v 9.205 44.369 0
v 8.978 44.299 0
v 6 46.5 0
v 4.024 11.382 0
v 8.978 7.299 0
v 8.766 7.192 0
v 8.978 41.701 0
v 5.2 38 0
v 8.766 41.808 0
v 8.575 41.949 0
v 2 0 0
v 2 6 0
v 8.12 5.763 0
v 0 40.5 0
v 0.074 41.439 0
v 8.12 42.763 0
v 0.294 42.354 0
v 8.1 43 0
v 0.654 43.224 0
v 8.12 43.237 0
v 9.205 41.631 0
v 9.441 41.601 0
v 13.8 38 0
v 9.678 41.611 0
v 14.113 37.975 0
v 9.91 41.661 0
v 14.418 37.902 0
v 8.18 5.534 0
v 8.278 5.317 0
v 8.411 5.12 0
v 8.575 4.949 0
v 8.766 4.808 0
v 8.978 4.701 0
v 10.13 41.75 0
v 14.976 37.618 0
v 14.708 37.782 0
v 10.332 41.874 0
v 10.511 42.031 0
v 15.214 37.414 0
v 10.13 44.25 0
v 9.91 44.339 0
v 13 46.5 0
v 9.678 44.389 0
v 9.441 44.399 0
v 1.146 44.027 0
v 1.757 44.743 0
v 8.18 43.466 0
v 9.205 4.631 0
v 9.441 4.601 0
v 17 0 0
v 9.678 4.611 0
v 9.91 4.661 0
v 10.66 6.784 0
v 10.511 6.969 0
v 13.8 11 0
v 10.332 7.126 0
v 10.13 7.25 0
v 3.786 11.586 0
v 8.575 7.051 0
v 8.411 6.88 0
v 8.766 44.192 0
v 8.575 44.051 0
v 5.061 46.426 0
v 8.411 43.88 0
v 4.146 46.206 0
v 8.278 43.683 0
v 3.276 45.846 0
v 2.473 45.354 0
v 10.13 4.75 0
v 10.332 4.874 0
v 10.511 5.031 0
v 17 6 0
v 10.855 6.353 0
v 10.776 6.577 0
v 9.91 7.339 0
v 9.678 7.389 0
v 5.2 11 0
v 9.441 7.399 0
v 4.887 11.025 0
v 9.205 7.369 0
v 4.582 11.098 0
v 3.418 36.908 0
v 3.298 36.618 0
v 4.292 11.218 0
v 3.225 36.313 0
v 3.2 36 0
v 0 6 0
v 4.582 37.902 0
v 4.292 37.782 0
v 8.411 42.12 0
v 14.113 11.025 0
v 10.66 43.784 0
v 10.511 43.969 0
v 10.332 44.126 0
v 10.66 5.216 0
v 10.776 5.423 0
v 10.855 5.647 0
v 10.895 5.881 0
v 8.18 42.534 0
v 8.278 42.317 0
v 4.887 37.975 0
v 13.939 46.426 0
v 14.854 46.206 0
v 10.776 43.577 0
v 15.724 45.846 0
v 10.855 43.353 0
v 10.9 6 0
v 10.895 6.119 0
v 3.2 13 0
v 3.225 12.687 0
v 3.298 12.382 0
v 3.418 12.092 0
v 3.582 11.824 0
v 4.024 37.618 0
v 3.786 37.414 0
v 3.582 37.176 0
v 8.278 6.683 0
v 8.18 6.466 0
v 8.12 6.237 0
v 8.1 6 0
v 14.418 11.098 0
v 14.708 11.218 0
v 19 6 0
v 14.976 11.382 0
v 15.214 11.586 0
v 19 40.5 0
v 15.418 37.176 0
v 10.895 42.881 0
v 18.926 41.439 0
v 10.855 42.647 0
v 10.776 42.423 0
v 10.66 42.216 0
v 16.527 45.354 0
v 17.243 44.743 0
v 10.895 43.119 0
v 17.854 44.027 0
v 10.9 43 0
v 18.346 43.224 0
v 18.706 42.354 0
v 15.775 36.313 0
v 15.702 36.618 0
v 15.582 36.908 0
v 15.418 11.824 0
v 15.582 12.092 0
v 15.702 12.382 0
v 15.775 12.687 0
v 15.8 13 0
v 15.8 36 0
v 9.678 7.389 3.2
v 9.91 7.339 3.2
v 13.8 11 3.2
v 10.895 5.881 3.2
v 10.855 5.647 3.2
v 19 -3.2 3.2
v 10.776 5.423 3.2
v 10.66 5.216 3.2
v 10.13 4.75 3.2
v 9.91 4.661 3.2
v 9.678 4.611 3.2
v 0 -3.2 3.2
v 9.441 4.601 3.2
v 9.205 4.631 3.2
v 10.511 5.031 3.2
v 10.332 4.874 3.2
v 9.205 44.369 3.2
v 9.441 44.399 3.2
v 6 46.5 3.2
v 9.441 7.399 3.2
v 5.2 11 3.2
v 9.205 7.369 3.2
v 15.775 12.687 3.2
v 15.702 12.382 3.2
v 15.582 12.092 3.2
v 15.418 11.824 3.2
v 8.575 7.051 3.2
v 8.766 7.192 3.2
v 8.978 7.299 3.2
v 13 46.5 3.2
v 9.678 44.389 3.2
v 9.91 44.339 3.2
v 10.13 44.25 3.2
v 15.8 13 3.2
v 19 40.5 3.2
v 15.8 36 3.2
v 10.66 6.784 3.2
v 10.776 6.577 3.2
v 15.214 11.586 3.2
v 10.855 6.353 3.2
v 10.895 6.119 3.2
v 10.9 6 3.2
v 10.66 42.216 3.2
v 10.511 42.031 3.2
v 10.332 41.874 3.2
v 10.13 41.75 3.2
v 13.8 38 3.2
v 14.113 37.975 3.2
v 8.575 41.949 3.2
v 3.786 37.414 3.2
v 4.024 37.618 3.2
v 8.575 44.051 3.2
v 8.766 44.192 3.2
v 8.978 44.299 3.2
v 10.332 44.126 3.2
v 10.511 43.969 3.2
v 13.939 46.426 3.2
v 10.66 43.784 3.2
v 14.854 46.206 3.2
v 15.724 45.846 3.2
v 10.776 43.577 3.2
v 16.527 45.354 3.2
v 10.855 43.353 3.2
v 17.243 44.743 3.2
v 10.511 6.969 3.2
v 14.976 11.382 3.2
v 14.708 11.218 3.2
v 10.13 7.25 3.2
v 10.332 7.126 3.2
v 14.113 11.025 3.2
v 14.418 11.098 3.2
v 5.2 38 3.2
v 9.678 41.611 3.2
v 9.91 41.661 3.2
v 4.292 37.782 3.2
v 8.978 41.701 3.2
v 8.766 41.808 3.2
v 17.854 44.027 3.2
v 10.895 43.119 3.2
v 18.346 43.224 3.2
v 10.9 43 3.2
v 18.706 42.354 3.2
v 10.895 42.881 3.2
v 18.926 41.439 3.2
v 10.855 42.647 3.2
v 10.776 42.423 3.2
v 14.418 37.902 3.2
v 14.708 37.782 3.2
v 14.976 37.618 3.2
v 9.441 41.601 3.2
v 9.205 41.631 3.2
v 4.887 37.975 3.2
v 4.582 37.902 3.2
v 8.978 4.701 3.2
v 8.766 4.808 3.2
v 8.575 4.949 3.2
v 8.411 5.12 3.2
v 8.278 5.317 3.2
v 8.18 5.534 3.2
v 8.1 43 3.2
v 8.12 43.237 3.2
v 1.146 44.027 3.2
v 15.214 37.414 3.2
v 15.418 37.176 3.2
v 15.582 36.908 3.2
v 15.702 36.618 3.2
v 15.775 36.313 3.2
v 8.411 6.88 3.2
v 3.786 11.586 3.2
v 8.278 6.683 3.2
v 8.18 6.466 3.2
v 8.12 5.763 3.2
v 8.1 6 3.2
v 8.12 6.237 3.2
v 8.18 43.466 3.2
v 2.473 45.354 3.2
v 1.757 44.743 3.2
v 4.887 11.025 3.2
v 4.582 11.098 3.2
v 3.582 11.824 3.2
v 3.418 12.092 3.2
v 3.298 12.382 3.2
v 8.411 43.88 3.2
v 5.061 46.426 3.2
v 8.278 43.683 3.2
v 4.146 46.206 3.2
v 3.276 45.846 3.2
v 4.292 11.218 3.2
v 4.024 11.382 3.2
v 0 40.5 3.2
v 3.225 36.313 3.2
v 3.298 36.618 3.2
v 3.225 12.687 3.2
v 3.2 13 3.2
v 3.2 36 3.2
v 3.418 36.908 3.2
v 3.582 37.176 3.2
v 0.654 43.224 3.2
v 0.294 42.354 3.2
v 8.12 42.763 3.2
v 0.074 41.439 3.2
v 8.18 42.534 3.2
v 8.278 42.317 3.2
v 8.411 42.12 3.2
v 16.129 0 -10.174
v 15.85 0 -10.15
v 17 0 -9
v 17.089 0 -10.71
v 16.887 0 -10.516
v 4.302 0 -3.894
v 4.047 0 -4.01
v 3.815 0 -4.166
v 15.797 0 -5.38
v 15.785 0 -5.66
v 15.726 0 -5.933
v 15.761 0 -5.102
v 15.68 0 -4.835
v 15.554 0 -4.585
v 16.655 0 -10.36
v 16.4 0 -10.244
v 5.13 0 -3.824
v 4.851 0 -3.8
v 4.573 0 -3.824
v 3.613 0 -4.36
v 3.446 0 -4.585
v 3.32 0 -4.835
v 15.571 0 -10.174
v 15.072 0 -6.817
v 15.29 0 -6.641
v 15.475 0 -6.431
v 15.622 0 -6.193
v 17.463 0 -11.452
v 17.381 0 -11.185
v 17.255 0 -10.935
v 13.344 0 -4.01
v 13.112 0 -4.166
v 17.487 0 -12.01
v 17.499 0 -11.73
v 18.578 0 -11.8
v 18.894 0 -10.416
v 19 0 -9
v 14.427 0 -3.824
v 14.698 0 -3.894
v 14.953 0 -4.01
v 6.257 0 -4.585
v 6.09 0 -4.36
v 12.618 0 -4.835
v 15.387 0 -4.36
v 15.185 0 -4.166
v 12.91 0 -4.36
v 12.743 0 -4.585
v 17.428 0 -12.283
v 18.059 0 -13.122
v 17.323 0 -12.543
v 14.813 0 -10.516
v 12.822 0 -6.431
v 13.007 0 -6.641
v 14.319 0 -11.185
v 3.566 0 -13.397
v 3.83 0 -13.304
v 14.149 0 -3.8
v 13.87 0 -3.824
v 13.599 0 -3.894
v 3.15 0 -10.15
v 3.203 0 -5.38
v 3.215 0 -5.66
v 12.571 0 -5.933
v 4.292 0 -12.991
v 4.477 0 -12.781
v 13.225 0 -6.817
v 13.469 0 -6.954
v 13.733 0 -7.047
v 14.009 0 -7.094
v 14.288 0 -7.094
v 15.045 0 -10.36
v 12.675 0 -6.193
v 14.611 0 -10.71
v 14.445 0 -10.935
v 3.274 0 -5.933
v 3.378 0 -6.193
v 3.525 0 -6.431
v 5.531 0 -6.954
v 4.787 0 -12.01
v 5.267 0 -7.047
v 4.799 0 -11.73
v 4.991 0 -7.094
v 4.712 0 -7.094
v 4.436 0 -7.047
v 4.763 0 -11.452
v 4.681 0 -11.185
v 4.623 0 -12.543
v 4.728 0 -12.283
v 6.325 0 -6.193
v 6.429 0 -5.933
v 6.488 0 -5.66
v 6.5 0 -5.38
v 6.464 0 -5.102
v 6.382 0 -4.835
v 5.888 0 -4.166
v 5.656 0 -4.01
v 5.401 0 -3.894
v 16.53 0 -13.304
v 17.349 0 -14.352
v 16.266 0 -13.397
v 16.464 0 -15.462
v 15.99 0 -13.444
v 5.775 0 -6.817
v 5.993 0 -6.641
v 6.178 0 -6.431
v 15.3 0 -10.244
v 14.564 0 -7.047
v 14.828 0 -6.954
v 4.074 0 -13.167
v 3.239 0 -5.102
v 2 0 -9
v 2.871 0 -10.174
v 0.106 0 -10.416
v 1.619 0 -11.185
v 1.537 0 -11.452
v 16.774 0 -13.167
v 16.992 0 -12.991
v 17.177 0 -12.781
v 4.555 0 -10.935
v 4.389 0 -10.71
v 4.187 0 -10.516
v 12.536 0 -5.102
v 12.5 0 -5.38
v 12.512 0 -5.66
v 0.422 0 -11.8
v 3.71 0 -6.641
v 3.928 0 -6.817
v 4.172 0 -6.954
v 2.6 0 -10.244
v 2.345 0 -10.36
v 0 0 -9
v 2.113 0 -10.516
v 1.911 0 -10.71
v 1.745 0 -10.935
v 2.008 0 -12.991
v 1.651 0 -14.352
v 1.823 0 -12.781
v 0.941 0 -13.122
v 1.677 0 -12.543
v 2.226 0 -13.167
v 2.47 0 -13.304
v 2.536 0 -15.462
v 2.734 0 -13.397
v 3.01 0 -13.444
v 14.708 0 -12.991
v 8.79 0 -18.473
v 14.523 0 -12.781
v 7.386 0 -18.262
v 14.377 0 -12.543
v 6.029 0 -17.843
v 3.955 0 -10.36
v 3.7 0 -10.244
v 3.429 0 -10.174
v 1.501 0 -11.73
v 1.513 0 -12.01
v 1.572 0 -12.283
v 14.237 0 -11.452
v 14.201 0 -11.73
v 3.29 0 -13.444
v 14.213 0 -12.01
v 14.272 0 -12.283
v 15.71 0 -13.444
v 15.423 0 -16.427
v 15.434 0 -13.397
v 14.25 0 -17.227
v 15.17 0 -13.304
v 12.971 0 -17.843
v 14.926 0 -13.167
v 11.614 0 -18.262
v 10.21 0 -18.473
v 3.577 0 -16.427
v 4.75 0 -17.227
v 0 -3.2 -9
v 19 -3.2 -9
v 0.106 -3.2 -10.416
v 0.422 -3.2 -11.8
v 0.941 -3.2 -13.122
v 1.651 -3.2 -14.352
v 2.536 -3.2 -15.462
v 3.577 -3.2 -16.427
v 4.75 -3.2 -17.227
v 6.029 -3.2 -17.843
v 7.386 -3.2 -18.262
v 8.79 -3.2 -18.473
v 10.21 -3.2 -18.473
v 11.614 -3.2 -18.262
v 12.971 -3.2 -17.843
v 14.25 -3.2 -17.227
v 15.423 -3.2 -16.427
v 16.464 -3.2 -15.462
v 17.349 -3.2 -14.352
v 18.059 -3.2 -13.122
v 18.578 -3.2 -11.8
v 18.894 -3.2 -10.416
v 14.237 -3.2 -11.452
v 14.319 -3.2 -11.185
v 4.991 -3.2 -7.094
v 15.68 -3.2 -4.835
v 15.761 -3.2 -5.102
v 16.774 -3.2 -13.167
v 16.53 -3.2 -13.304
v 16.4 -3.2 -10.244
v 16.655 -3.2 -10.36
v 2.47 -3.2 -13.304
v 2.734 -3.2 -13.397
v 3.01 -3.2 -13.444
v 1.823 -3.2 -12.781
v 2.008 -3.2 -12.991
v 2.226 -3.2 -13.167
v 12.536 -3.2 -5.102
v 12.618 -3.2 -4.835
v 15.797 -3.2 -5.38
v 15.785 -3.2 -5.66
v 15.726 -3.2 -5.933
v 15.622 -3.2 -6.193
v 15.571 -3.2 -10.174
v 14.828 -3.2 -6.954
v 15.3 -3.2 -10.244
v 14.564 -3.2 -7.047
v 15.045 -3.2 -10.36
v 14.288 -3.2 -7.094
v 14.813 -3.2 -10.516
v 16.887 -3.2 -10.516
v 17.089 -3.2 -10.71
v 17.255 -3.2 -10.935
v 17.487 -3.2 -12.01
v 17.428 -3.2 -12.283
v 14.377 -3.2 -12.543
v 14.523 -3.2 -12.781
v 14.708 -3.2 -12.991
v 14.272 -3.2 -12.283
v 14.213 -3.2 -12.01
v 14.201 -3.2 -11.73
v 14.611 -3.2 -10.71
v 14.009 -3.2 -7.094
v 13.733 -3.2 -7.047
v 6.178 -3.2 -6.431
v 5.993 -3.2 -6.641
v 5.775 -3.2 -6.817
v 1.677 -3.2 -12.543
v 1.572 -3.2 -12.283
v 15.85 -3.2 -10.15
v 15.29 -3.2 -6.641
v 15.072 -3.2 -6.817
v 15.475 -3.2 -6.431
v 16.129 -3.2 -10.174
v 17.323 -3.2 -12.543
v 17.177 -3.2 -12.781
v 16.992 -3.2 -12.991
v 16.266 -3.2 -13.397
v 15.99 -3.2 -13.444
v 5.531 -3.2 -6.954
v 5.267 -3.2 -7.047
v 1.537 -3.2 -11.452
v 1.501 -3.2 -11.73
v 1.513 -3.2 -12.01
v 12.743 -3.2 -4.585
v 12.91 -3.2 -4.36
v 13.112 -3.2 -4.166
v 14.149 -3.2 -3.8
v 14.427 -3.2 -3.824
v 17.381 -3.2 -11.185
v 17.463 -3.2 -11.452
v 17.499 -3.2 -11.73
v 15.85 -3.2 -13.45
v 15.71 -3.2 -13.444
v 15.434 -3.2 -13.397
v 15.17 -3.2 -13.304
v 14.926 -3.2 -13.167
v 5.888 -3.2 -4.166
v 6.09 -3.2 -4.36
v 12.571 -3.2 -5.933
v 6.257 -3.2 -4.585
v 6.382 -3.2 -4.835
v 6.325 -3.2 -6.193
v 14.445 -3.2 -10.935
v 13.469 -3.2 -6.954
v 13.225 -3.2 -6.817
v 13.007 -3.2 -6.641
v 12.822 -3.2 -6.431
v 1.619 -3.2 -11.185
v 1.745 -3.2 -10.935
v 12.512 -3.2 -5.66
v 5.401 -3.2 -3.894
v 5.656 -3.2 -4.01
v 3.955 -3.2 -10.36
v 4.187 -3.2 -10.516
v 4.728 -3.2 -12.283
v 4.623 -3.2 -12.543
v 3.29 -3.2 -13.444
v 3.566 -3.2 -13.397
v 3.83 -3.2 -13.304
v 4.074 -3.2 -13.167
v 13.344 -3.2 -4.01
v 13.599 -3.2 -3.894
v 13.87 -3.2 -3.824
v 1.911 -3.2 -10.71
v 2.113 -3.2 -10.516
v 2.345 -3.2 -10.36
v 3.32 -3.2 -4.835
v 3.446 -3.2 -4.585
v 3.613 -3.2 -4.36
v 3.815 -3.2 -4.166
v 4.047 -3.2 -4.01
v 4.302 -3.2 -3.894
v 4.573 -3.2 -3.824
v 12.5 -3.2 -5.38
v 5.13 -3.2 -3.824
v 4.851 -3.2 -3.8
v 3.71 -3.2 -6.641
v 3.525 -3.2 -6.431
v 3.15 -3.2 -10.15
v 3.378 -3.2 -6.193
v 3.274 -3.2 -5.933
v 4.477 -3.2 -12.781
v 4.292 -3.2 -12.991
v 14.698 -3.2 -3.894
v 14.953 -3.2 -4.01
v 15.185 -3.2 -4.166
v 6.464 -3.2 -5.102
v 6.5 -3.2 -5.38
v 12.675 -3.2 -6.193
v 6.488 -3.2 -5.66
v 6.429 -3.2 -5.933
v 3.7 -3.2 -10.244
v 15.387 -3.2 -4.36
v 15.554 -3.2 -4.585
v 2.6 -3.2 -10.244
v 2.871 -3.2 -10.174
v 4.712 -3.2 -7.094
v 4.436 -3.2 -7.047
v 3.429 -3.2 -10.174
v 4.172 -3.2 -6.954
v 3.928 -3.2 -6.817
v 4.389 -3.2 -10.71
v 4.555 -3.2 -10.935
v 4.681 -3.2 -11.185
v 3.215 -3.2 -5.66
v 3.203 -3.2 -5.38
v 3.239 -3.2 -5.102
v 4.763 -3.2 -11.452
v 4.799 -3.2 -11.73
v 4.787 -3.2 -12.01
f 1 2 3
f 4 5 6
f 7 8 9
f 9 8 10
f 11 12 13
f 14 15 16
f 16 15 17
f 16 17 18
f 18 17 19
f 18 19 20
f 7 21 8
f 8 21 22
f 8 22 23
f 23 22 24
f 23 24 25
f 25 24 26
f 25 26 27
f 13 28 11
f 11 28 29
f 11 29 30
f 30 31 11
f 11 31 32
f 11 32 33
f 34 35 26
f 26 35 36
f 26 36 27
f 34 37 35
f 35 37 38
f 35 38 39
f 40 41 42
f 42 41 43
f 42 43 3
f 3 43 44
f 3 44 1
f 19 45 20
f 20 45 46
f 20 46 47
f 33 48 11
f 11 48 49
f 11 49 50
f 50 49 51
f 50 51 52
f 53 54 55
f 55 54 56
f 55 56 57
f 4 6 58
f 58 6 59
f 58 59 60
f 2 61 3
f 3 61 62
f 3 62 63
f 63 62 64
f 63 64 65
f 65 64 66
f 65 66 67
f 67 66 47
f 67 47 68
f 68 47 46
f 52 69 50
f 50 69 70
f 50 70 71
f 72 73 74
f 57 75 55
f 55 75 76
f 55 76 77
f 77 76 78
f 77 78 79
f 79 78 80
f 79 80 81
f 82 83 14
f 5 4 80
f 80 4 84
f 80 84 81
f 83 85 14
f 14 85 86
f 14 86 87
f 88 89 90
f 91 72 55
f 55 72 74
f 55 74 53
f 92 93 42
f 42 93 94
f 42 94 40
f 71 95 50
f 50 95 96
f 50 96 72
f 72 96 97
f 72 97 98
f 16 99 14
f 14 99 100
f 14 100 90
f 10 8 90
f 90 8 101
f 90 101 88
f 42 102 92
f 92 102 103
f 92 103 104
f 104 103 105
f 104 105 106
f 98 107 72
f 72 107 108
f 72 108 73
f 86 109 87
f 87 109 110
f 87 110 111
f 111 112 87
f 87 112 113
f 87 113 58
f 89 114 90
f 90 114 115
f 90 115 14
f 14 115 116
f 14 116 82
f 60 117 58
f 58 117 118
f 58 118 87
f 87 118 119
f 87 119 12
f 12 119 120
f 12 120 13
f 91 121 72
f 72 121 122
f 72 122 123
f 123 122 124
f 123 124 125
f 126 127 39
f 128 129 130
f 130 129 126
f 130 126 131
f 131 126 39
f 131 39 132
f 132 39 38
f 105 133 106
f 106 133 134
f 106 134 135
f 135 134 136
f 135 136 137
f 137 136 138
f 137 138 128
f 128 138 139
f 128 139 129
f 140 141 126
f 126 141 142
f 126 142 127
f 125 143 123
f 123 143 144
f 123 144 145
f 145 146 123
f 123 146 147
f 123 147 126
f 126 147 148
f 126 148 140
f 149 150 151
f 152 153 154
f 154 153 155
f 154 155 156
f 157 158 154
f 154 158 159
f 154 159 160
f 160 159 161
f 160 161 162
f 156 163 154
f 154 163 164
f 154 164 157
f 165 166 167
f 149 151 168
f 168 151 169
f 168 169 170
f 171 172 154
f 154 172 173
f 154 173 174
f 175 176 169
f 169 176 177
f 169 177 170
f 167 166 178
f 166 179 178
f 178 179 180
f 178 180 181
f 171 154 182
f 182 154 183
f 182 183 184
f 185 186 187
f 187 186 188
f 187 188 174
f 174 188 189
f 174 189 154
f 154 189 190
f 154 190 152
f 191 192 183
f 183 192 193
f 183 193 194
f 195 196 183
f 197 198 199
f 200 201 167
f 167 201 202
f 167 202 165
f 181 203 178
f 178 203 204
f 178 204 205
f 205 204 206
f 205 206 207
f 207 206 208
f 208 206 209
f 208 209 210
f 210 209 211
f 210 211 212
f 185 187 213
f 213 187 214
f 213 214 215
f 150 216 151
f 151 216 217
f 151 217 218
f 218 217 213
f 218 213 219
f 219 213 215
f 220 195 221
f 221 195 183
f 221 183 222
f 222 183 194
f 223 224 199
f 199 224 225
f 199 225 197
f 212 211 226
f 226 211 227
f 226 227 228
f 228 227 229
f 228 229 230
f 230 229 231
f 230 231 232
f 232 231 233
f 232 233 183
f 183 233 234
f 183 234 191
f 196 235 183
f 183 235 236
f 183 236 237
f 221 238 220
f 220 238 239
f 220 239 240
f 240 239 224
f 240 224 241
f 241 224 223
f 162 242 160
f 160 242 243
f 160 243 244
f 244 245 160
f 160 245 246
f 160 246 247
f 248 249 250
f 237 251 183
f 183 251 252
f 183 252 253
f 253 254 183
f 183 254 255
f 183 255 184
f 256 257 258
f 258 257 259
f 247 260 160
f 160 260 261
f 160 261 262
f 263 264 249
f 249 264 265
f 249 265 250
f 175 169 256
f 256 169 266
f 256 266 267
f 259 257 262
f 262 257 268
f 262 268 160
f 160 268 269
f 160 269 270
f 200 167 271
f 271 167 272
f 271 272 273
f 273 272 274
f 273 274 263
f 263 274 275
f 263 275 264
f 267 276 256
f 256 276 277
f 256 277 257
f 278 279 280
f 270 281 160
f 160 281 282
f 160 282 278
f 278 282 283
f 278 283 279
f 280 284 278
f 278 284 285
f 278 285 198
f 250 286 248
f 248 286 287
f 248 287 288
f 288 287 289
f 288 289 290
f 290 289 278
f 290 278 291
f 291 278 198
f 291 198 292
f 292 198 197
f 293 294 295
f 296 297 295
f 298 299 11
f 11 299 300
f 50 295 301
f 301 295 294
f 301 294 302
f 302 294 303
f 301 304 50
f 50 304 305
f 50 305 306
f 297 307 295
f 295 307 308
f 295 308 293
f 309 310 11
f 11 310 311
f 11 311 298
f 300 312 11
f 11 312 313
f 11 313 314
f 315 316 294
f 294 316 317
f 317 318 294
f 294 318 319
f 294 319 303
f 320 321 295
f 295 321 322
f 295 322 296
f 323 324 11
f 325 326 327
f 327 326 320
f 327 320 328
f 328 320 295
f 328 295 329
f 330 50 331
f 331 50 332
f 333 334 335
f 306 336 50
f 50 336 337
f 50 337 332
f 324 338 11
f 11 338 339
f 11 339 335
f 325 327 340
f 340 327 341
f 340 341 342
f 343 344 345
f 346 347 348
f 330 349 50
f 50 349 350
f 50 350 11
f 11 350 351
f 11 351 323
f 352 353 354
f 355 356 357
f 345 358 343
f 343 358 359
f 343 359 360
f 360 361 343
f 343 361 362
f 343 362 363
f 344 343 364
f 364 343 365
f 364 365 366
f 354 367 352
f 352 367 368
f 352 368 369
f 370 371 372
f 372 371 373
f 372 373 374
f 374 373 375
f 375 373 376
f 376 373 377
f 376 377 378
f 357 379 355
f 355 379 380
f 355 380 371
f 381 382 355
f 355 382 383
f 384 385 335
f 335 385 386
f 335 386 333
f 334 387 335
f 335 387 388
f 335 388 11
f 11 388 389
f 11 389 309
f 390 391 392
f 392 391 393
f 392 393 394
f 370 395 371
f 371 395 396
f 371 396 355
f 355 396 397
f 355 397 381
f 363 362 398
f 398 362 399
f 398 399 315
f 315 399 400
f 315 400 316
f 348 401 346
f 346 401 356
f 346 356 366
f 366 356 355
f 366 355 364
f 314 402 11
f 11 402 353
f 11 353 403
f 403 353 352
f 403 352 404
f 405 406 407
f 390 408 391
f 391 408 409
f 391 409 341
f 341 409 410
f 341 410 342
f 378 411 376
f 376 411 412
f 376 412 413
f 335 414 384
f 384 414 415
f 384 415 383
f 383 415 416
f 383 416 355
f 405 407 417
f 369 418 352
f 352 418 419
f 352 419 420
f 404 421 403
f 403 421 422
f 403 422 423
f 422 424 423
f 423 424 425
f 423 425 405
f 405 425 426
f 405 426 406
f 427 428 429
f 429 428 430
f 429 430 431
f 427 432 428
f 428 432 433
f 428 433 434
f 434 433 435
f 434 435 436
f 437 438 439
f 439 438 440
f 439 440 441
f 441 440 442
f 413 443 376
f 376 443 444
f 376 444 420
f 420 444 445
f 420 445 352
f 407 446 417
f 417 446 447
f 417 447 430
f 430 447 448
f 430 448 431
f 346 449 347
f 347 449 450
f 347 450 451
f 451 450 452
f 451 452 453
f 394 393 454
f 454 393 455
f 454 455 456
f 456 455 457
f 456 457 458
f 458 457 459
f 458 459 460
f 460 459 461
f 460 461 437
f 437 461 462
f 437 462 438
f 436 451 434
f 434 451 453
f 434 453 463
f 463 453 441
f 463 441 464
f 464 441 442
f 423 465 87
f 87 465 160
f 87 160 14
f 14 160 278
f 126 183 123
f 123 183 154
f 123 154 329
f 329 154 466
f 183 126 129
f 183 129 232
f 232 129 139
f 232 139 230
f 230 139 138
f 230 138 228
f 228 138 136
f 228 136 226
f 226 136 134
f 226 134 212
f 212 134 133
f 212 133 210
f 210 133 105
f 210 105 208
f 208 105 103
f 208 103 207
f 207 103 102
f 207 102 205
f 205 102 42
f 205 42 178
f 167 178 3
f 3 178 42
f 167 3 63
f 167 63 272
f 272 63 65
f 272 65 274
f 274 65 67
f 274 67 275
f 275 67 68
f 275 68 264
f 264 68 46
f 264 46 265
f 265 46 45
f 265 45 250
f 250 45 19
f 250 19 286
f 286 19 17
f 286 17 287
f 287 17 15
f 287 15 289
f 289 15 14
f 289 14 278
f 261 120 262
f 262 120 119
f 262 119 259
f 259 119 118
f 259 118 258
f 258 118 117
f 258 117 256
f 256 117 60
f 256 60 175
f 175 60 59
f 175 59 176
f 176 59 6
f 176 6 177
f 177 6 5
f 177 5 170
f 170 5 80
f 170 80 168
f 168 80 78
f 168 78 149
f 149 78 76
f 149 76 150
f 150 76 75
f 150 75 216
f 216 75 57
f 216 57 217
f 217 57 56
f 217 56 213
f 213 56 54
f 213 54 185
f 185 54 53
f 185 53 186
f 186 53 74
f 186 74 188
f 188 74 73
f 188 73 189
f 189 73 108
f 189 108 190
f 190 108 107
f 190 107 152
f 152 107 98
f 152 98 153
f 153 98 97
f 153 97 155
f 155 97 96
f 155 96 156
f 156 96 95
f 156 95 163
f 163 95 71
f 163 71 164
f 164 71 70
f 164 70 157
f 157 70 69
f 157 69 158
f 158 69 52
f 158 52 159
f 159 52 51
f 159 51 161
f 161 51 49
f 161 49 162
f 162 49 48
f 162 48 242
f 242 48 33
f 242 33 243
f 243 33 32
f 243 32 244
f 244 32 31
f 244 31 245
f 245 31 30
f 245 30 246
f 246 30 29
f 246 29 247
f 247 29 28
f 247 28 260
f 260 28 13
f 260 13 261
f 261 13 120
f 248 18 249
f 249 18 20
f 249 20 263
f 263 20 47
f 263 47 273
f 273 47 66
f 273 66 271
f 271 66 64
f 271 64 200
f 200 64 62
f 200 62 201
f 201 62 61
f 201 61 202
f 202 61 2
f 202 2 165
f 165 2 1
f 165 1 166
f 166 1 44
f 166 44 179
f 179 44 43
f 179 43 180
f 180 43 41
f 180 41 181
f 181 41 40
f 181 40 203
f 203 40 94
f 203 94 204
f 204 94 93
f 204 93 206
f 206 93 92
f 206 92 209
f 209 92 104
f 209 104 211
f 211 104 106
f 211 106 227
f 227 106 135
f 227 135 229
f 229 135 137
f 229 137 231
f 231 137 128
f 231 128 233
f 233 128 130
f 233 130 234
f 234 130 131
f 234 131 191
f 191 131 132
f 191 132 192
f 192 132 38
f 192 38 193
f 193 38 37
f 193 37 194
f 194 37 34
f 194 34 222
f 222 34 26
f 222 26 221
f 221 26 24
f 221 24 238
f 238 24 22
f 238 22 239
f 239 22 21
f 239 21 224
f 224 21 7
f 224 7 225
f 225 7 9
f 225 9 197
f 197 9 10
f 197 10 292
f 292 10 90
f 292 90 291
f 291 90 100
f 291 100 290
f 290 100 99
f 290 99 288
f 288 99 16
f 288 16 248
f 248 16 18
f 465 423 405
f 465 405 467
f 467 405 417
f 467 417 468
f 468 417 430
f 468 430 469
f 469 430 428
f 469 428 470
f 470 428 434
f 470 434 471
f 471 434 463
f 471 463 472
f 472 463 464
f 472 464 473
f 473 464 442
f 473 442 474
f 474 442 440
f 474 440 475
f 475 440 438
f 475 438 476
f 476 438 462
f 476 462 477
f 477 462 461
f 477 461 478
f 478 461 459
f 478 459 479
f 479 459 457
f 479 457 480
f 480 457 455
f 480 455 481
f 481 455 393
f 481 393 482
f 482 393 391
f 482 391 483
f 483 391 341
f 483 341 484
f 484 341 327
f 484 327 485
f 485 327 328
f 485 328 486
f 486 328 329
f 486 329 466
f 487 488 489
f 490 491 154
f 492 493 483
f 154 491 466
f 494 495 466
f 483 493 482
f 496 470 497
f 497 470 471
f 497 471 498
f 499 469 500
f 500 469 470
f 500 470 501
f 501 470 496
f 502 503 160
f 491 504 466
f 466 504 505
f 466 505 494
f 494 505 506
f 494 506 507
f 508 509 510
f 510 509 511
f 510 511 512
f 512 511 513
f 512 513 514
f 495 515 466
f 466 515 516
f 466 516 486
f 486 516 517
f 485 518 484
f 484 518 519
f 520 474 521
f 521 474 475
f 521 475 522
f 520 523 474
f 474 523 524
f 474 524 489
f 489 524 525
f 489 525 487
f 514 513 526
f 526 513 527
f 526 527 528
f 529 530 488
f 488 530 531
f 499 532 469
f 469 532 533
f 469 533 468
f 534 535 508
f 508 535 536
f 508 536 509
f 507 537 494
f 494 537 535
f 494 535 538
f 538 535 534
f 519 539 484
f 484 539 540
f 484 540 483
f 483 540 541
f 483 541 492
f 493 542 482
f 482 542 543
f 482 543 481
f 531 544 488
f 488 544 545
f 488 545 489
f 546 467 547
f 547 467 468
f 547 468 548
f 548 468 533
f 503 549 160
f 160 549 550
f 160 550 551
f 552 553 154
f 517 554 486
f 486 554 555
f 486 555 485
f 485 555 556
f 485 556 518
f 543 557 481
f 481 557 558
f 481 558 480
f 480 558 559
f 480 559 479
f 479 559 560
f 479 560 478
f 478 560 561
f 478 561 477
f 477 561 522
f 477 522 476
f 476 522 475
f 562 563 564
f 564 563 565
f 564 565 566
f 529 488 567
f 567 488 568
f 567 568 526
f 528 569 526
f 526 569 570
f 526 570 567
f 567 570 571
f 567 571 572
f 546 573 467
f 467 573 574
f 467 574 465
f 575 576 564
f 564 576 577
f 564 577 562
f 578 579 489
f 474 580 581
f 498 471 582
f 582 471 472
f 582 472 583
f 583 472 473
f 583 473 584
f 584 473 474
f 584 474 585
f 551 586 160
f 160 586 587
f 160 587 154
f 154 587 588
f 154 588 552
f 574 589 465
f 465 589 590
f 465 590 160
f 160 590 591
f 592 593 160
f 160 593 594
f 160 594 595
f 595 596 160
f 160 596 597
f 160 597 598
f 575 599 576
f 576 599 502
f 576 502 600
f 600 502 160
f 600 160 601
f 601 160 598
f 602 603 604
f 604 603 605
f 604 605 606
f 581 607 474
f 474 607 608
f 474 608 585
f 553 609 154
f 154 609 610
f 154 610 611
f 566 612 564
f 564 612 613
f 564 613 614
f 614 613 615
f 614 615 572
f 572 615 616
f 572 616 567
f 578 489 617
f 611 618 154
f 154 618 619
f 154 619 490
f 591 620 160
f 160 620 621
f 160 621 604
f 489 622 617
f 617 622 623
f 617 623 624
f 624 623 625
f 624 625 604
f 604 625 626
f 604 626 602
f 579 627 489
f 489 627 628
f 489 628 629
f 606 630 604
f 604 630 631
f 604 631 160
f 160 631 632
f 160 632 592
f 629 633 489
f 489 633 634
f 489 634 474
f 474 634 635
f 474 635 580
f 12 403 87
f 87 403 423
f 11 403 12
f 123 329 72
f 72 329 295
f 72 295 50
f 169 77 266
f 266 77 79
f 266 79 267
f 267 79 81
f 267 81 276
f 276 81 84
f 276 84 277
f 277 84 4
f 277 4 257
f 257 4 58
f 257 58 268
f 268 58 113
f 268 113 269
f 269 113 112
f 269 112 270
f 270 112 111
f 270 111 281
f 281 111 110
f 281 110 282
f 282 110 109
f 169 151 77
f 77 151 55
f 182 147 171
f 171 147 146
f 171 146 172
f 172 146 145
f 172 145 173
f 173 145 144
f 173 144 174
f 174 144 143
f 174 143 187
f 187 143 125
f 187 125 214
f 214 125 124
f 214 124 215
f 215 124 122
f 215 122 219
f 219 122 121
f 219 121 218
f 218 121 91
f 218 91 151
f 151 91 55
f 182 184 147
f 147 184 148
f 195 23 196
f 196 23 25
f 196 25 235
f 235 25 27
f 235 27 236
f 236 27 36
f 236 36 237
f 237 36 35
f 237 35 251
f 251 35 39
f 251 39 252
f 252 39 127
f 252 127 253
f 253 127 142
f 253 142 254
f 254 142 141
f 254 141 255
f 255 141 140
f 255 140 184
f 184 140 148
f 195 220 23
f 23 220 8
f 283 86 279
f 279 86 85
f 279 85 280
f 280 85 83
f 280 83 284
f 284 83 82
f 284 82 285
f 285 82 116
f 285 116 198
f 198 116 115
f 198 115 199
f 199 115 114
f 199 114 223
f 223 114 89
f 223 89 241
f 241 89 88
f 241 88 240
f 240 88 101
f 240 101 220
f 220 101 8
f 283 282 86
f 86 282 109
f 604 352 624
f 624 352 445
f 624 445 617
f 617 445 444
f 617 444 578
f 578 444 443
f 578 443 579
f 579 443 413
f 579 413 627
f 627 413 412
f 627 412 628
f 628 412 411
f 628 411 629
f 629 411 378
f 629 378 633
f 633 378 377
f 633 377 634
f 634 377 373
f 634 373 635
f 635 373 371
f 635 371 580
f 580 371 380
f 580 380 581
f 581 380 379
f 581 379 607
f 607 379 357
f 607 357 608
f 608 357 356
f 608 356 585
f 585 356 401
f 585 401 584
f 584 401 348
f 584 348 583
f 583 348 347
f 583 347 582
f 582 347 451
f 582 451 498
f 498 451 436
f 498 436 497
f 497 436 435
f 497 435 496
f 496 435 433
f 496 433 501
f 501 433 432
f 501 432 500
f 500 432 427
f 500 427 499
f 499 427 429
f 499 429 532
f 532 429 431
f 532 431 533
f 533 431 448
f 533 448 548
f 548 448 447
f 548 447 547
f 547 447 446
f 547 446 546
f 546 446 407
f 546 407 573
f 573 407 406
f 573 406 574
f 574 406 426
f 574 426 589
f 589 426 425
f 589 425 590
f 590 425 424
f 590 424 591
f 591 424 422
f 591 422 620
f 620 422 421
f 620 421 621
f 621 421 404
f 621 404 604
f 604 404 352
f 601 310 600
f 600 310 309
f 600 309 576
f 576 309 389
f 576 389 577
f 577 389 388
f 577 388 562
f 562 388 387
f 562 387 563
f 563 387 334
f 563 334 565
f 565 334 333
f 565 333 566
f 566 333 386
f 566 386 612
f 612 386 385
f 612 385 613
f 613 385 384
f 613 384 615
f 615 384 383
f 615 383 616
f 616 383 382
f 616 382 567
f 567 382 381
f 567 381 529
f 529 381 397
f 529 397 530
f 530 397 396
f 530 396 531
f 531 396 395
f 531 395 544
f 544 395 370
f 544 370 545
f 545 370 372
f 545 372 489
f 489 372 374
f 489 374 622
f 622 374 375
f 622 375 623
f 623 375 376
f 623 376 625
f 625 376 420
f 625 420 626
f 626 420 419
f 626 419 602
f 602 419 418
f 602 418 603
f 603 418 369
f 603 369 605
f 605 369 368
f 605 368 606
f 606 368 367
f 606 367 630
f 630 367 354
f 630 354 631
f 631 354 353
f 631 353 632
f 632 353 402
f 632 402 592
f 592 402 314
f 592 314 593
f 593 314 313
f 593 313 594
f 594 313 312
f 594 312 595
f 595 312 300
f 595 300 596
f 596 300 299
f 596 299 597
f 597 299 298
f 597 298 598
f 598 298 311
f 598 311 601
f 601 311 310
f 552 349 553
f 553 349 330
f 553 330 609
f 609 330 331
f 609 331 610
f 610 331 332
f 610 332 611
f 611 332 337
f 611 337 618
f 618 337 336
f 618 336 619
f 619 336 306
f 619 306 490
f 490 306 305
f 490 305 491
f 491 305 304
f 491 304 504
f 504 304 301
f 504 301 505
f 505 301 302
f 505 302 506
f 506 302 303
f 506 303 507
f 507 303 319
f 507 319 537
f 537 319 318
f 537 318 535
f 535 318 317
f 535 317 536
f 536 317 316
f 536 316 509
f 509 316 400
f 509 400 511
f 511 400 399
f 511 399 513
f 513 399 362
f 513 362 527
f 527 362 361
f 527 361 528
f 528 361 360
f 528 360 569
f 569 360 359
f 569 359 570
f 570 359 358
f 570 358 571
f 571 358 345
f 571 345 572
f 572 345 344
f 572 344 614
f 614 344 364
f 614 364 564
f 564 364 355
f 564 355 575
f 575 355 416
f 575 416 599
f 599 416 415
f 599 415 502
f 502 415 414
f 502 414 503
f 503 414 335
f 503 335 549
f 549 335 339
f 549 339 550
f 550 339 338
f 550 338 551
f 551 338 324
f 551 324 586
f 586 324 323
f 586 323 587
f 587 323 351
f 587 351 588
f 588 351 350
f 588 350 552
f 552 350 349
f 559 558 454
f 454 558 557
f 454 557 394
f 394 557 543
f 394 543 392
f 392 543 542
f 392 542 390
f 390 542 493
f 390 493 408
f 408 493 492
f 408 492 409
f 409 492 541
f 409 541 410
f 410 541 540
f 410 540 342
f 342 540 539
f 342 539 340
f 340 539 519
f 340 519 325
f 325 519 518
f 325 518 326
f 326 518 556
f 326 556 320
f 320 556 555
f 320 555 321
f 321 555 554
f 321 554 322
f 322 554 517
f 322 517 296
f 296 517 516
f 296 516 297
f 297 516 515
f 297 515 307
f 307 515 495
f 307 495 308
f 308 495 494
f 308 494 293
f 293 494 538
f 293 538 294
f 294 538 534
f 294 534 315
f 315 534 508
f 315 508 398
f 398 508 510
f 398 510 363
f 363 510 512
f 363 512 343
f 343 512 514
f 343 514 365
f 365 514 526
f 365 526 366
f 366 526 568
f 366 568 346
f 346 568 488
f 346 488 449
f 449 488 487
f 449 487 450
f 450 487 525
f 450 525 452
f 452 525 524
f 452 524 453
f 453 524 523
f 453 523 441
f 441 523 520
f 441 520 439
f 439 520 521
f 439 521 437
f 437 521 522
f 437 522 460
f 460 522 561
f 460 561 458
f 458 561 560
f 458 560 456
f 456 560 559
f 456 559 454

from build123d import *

# Parameters (mm, degrees)
SKETCH1_R               = 1.4
BOSS_EXTRUDE1_DEPTH     = 3.2
BOSS_EXTRUDE3_DEPTH     = 3.2
BOSS_EXTRUDE4_DEPTH     = 2
LPATTERN1_COUNT         = 2
LPATTERN1_PITCH         = 17
CUT_EXTRUDE1_DEPTH      = 54.530365215
CUT_EXTRUDE4_DEPTH      = 54.530365215
CUT_EXTRUDE4_DEPTH_BACK = 54.530365215
SKETCH8_R               = 1.65


with BuildPart() as part:
    # Sketch1 → Boss-Extrude1 (new body)
    with BuildSketch(Plane.XY):
        with BuildLine():
            Line((0, 0), (19, 0))
            Line((19, 0), (19, 40.5))
            ThreePointArc((19, 40.5), (17.242640687, 44.742640687), (13, 46.5))
            Line((13, 46.5), (6, 46.5))
            ThreePointArc((6, 46.5), (1.757359313, 44.742640687), (0, 40.5))
            Line((0, 40.5), (0, 0))
        make_face()
        with Locations((9.5, 6)):
            Circle(SKETCH1_R, mode=Mode.SUBTRACT)
        with Locations((9.5, 43)):
            Circle(SKETCH1_R, mode=Mode.SUBTRACT)
    extrude(amount=BOSS_EXTRUDE1_DEPTH)

    # Sketch2 → Boss-Extrude3 (add)
    with BuildSketch(Plane(origin=(0, 0, 0), x_dir=(1, 0, 0), z_dir=(0, 1, 0))):
        with BuildLine():
            Line((0, 9), (0, -3.2))
            Line((0, -3.2), (19, -3.2))
            Line((19, -3.2), (19, 9))
            ThreePointArc((19, 9), (9.5, 18.5), (0, 9))
        make_face()
    extrude(amount=-BOSS_EXTRUDE3_DEPTH)

    # Sketch3 → Boss-Extrude4 (add)
    with BuildSketch(Plane(origin=(0, 0, 0), x_dir=(0, 0, -1), z_dir=(1, 0, 0))):
        Polygon((0, 0), (9, 0), (0, 6), align=None)
    boss_extrude4 = extrude(amount=BOSS_EXTRUDE4_DEPTH)

    # LPattern1: Boss-Extrude4 ×2
    with Locations(*[(i * LPATTERN1_PITCH, 0, 0) for i in range(1, LPATTERN1_COUNT)]):
        add(boss_extrude4)

    # Sketch4 → Cut-Extrude1 (cut, through all)
    with BuildSketch(Plane.XY):
        with BuildLine():
            Line((5.2, 38), (13.8, 38))
            ThreePointArc((13.8, 38), (15.214213562, 37.414213562), (15.8, 36))
            Line((15.8, 36), (15.8, 13))
            ThreePointArc((15.8, 13), (15.214213562, 11.585786438), (13.8, 11))
            Line((13.8, 11), (5.2, 11))
            ThreePointArc((5.2, 11), (3.785786438, 11.585786438), (3.2, 13))
            Line((3.2, 13), (3.2, 36))
            ThreePointArc((3.2, 36), (3.785786438, 37.414213562), (5.2, 38))
        make_face()
    extrude(amount=CUT_EXTRUDE1_DEPTH, mode=Mode.SUBTRACT)

    # Sketch8 → Cut-Extrude4 (cut, two sides: drawn at the far end of the back side and taken through both)
    with BuildSketch(Plane(origin=(0, 0, 0), x_dir=(1, 0, 0), z_dir=(0, 1, 0)).offset(-CUT_EXTRUDE4_DEPTH_BACK)):
        with Locations(Location((3.15, 11.8, 0), (0, 0, 270))):
            Circle(SKETCH8_R)
        with Locations(Location((14.14852263, 5.45, 0), (0, 0, 270))):
            Circle(SKETCH8_R)
        with Locations(Location((4.85147737, 5.45, 0), (0, 0, 270))):
            Circle(SKETCH8_R)
        with Locations(Location((15.85, 11.8, 0), (0, 0, 270))):
            Circle(SKETCH8_R)
    extrude(amount=CUT_EXTRUDE4_DEPTH + CUT_EXTRUDE4_DEPTH_BACK, mode=Mode.SUBTRACT)


solid = part.part
